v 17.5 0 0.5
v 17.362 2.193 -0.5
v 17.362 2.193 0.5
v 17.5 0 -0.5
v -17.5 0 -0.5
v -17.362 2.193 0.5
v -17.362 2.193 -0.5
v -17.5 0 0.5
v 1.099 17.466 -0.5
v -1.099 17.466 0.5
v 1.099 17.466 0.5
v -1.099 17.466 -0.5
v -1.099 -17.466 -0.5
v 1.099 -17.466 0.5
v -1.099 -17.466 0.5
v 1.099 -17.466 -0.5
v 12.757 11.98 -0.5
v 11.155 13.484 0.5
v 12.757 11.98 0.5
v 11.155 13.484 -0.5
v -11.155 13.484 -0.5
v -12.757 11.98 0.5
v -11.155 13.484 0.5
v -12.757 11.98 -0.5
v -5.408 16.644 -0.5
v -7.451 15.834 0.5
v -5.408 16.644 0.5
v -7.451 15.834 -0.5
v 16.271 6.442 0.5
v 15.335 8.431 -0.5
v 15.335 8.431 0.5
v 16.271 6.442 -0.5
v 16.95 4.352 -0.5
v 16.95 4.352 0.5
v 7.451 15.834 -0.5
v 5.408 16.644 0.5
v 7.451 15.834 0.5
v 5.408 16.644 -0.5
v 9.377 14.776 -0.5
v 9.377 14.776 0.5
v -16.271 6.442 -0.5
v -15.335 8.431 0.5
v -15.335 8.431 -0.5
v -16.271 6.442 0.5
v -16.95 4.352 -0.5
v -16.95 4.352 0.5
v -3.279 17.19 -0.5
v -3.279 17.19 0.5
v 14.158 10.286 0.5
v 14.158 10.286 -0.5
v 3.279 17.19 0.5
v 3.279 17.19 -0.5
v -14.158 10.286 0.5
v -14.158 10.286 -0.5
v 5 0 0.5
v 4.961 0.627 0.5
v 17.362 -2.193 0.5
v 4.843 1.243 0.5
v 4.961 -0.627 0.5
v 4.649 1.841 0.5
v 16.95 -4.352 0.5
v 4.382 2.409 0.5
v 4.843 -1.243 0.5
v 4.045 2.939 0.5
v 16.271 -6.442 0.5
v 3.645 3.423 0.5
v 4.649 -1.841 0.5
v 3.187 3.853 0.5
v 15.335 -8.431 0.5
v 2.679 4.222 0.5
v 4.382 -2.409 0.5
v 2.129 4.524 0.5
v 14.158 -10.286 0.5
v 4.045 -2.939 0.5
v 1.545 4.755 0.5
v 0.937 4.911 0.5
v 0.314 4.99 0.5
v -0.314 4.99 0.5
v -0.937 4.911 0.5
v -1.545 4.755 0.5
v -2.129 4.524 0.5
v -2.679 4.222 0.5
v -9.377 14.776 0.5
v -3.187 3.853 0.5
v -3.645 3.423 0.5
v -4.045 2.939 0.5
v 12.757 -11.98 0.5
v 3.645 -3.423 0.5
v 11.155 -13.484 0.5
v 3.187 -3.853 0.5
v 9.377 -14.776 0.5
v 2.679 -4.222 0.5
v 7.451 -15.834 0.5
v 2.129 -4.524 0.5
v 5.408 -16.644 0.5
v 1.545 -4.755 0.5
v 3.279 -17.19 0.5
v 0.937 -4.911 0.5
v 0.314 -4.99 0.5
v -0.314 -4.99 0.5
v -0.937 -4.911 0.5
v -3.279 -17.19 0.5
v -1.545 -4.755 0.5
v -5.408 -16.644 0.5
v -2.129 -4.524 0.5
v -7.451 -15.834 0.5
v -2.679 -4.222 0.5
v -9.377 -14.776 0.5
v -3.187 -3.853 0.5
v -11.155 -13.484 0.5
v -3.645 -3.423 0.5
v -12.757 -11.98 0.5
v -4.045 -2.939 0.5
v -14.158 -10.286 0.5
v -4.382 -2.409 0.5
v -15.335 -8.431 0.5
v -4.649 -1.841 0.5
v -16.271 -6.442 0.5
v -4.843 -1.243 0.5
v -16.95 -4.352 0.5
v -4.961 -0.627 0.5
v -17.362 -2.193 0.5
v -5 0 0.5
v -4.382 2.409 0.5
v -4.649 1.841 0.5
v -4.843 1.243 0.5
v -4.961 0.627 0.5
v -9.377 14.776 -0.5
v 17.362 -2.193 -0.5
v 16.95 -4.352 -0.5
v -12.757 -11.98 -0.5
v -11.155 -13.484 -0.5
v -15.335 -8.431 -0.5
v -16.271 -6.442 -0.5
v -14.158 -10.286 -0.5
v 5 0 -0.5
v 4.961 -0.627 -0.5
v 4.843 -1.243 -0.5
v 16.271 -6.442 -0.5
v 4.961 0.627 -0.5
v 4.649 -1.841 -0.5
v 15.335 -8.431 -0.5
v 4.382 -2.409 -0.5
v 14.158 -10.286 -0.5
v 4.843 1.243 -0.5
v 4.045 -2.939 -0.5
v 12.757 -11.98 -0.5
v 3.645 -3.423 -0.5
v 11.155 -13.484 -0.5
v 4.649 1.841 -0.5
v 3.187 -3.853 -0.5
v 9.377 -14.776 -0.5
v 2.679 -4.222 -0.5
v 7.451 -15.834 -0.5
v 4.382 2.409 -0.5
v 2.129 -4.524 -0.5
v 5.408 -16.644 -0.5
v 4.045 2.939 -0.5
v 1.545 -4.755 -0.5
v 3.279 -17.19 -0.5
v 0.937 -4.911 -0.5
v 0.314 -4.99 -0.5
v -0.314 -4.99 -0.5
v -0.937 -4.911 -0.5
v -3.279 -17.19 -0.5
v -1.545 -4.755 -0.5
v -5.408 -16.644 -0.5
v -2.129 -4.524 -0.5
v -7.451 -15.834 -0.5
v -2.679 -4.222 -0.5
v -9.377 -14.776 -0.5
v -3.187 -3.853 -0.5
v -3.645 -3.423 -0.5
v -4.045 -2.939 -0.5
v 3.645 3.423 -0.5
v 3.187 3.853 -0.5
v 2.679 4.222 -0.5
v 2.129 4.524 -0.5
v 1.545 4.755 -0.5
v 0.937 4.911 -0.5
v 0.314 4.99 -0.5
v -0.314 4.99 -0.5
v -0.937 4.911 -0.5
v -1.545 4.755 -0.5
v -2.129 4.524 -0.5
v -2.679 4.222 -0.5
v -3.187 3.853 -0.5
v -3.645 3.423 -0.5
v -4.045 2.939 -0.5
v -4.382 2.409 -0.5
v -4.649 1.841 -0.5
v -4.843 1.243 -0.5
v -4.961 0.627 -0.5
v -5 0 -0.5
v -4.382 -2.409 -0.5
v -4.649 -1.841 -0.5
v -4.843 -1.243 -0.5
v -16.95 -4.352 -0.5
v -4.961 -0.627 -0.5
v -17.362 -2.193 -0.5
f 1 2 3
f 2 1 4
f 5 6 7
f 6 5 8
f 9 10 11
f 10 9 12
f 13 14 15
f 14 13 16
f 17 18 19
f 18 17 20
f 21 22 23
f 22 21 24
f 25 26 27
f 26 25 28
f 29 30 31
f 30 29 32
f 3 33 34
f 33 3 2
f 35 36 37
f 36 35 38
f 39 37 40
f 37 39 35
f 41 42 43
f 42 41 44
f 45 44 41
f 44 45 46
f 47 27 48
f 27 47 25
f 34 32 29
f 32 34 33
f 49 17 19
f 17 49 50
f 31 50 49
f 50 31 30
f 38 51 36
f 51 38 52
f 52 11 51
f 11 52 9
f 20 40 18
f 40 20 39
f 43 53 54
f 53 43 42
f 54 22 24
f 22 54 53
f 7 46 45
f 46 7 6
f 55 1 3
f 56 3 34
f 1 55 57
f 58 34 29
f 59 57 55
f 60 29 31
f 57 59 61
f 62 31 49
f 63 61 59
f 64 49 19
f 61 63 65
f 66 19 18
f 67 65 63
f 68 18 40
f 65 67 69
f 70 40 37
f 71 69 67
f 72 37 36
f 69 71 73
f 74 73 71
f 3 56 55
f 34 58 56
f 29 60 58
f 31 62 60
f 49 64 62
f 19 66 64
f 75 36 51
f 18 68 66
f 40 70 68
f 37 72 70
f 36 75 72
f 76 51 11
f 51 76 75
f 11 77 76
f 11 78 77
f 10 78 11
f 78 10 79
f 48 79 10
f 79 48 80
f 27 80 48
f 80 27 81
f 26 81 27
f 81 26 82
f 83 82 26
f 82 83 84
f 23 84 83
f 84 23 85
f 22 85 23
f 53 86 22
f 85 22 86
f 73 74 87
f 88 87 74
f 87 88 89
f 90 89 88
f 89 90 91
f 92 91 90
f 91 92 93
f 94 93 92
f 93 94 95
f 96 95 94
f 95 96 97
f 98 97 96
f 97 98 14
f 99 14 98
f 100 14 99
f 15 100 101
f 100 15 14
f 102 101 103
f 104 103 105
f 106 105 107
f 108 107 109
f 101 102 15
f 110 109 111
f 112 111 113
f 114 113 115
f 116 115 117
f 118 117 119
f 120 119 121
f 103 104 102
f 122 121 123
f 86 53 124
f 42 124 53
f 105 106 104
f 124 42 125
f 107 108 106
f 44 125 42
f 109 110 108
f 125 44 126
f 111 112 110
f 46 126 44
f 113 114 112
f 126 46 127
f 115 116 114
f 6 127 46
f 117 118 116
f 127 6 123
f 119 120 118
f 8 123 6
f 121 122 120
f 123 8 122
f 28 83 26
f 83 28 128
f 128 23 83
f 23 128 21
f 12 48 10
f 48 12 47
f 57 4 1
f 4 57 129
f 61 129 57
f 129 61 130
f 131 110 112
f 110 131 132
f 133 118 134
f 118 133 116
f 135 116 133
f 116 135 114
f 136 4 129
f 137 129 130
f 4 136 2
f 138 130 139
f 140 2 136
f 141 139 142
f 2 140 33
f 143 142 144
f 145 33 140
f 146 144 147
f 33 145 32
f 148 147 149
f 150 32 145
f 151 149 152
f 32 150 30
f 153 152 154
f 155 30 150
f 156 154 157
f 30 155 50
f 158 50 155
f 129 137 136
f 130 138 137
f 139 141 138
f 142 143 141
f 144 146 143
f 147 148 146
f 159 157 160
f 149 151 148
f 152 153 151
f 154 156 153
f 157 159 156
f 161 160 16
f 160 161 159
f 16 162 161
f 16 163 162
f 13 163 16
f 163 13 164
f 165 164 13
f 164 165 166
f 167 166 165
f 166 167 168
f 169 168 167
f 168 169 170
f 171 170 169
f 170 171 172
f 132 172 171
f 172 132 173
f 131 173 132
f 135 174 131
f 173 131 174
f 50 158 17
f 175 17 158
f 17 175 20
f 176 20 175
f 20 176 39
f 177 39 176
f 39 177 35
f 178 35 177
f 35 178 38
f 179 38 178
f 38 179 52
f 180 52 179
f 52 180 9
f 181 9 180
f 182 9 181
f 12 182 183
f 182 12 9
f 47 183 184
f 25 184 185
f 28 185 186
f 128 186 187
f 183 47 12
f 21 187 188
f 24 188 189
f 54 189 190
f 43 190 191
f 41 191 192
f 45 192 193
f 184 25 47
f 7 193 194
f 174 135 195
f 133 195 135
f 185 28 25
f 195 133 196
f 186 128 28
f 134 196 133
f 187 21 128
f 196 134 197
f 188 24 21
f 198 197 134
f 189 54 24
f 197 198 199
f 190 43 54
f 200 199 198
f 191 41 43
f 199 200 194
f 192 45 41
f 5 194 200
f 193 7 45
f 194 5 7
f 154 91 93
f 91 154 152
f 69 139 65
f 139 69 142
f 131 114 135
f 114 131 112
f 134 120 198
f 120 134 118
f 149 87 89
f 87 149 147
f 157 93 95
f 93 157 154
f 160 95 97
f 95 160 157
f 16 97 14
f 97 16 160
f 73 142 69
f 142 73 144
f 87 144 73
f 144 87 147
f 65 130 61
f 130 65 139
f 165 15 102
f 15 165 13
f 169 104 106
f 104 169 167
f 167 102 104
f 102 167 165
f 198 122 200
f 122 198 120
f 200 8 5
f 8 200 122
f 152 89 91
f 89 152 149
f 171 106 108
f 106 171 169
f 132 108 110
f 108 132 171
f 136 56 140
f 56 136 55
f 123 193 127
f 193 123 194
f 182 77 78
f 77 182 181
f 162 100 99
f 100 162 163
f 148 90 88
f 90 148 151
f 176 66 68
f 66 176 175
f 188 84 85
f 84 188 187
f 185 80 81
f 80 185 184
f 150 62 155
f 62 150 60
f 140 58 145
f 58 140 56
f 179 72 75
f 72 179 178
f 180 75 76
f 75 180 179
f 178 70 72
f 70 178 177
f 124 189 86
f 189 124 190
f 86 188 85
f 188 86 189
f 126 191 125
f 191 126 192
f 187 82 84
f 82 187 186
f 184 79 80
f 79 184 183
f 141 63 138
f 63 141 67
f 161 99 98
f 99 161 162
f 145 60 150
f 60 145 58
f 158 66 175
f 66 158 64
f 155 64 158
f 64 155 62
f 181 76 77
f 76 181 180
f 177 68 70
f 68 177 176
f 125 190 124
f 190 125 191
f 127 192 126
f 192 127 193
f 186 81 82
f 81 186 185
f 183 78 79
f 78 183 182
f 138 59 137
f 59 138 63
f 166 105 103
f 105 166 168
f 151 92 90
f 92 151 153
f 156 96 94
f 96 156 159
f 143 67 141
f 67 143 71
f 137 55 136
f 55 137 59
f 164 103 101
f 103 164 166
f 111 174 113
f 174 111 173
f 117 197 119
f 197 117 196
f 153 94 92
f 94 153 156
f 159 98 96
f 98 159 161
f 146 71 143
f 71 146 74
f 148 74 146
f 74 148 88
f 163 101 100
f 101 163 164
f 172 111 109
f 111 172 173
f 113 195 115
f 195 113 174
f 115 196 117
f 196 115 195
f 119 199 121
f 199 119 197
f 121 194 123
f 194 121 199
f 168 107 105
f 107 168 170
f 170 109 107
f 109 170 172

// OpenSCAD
$fn = 50;


difference() {
	union() {
		translate(v = [0, 0, -0.5000000000]) {
			cylinder(h = 1, r = 17.5000000000);
		}
	}
	union() {
		translate(v = [0, 0, -100.0000000000]) {
			cylinder(h = 200, r = 5);
		}
	}
}
